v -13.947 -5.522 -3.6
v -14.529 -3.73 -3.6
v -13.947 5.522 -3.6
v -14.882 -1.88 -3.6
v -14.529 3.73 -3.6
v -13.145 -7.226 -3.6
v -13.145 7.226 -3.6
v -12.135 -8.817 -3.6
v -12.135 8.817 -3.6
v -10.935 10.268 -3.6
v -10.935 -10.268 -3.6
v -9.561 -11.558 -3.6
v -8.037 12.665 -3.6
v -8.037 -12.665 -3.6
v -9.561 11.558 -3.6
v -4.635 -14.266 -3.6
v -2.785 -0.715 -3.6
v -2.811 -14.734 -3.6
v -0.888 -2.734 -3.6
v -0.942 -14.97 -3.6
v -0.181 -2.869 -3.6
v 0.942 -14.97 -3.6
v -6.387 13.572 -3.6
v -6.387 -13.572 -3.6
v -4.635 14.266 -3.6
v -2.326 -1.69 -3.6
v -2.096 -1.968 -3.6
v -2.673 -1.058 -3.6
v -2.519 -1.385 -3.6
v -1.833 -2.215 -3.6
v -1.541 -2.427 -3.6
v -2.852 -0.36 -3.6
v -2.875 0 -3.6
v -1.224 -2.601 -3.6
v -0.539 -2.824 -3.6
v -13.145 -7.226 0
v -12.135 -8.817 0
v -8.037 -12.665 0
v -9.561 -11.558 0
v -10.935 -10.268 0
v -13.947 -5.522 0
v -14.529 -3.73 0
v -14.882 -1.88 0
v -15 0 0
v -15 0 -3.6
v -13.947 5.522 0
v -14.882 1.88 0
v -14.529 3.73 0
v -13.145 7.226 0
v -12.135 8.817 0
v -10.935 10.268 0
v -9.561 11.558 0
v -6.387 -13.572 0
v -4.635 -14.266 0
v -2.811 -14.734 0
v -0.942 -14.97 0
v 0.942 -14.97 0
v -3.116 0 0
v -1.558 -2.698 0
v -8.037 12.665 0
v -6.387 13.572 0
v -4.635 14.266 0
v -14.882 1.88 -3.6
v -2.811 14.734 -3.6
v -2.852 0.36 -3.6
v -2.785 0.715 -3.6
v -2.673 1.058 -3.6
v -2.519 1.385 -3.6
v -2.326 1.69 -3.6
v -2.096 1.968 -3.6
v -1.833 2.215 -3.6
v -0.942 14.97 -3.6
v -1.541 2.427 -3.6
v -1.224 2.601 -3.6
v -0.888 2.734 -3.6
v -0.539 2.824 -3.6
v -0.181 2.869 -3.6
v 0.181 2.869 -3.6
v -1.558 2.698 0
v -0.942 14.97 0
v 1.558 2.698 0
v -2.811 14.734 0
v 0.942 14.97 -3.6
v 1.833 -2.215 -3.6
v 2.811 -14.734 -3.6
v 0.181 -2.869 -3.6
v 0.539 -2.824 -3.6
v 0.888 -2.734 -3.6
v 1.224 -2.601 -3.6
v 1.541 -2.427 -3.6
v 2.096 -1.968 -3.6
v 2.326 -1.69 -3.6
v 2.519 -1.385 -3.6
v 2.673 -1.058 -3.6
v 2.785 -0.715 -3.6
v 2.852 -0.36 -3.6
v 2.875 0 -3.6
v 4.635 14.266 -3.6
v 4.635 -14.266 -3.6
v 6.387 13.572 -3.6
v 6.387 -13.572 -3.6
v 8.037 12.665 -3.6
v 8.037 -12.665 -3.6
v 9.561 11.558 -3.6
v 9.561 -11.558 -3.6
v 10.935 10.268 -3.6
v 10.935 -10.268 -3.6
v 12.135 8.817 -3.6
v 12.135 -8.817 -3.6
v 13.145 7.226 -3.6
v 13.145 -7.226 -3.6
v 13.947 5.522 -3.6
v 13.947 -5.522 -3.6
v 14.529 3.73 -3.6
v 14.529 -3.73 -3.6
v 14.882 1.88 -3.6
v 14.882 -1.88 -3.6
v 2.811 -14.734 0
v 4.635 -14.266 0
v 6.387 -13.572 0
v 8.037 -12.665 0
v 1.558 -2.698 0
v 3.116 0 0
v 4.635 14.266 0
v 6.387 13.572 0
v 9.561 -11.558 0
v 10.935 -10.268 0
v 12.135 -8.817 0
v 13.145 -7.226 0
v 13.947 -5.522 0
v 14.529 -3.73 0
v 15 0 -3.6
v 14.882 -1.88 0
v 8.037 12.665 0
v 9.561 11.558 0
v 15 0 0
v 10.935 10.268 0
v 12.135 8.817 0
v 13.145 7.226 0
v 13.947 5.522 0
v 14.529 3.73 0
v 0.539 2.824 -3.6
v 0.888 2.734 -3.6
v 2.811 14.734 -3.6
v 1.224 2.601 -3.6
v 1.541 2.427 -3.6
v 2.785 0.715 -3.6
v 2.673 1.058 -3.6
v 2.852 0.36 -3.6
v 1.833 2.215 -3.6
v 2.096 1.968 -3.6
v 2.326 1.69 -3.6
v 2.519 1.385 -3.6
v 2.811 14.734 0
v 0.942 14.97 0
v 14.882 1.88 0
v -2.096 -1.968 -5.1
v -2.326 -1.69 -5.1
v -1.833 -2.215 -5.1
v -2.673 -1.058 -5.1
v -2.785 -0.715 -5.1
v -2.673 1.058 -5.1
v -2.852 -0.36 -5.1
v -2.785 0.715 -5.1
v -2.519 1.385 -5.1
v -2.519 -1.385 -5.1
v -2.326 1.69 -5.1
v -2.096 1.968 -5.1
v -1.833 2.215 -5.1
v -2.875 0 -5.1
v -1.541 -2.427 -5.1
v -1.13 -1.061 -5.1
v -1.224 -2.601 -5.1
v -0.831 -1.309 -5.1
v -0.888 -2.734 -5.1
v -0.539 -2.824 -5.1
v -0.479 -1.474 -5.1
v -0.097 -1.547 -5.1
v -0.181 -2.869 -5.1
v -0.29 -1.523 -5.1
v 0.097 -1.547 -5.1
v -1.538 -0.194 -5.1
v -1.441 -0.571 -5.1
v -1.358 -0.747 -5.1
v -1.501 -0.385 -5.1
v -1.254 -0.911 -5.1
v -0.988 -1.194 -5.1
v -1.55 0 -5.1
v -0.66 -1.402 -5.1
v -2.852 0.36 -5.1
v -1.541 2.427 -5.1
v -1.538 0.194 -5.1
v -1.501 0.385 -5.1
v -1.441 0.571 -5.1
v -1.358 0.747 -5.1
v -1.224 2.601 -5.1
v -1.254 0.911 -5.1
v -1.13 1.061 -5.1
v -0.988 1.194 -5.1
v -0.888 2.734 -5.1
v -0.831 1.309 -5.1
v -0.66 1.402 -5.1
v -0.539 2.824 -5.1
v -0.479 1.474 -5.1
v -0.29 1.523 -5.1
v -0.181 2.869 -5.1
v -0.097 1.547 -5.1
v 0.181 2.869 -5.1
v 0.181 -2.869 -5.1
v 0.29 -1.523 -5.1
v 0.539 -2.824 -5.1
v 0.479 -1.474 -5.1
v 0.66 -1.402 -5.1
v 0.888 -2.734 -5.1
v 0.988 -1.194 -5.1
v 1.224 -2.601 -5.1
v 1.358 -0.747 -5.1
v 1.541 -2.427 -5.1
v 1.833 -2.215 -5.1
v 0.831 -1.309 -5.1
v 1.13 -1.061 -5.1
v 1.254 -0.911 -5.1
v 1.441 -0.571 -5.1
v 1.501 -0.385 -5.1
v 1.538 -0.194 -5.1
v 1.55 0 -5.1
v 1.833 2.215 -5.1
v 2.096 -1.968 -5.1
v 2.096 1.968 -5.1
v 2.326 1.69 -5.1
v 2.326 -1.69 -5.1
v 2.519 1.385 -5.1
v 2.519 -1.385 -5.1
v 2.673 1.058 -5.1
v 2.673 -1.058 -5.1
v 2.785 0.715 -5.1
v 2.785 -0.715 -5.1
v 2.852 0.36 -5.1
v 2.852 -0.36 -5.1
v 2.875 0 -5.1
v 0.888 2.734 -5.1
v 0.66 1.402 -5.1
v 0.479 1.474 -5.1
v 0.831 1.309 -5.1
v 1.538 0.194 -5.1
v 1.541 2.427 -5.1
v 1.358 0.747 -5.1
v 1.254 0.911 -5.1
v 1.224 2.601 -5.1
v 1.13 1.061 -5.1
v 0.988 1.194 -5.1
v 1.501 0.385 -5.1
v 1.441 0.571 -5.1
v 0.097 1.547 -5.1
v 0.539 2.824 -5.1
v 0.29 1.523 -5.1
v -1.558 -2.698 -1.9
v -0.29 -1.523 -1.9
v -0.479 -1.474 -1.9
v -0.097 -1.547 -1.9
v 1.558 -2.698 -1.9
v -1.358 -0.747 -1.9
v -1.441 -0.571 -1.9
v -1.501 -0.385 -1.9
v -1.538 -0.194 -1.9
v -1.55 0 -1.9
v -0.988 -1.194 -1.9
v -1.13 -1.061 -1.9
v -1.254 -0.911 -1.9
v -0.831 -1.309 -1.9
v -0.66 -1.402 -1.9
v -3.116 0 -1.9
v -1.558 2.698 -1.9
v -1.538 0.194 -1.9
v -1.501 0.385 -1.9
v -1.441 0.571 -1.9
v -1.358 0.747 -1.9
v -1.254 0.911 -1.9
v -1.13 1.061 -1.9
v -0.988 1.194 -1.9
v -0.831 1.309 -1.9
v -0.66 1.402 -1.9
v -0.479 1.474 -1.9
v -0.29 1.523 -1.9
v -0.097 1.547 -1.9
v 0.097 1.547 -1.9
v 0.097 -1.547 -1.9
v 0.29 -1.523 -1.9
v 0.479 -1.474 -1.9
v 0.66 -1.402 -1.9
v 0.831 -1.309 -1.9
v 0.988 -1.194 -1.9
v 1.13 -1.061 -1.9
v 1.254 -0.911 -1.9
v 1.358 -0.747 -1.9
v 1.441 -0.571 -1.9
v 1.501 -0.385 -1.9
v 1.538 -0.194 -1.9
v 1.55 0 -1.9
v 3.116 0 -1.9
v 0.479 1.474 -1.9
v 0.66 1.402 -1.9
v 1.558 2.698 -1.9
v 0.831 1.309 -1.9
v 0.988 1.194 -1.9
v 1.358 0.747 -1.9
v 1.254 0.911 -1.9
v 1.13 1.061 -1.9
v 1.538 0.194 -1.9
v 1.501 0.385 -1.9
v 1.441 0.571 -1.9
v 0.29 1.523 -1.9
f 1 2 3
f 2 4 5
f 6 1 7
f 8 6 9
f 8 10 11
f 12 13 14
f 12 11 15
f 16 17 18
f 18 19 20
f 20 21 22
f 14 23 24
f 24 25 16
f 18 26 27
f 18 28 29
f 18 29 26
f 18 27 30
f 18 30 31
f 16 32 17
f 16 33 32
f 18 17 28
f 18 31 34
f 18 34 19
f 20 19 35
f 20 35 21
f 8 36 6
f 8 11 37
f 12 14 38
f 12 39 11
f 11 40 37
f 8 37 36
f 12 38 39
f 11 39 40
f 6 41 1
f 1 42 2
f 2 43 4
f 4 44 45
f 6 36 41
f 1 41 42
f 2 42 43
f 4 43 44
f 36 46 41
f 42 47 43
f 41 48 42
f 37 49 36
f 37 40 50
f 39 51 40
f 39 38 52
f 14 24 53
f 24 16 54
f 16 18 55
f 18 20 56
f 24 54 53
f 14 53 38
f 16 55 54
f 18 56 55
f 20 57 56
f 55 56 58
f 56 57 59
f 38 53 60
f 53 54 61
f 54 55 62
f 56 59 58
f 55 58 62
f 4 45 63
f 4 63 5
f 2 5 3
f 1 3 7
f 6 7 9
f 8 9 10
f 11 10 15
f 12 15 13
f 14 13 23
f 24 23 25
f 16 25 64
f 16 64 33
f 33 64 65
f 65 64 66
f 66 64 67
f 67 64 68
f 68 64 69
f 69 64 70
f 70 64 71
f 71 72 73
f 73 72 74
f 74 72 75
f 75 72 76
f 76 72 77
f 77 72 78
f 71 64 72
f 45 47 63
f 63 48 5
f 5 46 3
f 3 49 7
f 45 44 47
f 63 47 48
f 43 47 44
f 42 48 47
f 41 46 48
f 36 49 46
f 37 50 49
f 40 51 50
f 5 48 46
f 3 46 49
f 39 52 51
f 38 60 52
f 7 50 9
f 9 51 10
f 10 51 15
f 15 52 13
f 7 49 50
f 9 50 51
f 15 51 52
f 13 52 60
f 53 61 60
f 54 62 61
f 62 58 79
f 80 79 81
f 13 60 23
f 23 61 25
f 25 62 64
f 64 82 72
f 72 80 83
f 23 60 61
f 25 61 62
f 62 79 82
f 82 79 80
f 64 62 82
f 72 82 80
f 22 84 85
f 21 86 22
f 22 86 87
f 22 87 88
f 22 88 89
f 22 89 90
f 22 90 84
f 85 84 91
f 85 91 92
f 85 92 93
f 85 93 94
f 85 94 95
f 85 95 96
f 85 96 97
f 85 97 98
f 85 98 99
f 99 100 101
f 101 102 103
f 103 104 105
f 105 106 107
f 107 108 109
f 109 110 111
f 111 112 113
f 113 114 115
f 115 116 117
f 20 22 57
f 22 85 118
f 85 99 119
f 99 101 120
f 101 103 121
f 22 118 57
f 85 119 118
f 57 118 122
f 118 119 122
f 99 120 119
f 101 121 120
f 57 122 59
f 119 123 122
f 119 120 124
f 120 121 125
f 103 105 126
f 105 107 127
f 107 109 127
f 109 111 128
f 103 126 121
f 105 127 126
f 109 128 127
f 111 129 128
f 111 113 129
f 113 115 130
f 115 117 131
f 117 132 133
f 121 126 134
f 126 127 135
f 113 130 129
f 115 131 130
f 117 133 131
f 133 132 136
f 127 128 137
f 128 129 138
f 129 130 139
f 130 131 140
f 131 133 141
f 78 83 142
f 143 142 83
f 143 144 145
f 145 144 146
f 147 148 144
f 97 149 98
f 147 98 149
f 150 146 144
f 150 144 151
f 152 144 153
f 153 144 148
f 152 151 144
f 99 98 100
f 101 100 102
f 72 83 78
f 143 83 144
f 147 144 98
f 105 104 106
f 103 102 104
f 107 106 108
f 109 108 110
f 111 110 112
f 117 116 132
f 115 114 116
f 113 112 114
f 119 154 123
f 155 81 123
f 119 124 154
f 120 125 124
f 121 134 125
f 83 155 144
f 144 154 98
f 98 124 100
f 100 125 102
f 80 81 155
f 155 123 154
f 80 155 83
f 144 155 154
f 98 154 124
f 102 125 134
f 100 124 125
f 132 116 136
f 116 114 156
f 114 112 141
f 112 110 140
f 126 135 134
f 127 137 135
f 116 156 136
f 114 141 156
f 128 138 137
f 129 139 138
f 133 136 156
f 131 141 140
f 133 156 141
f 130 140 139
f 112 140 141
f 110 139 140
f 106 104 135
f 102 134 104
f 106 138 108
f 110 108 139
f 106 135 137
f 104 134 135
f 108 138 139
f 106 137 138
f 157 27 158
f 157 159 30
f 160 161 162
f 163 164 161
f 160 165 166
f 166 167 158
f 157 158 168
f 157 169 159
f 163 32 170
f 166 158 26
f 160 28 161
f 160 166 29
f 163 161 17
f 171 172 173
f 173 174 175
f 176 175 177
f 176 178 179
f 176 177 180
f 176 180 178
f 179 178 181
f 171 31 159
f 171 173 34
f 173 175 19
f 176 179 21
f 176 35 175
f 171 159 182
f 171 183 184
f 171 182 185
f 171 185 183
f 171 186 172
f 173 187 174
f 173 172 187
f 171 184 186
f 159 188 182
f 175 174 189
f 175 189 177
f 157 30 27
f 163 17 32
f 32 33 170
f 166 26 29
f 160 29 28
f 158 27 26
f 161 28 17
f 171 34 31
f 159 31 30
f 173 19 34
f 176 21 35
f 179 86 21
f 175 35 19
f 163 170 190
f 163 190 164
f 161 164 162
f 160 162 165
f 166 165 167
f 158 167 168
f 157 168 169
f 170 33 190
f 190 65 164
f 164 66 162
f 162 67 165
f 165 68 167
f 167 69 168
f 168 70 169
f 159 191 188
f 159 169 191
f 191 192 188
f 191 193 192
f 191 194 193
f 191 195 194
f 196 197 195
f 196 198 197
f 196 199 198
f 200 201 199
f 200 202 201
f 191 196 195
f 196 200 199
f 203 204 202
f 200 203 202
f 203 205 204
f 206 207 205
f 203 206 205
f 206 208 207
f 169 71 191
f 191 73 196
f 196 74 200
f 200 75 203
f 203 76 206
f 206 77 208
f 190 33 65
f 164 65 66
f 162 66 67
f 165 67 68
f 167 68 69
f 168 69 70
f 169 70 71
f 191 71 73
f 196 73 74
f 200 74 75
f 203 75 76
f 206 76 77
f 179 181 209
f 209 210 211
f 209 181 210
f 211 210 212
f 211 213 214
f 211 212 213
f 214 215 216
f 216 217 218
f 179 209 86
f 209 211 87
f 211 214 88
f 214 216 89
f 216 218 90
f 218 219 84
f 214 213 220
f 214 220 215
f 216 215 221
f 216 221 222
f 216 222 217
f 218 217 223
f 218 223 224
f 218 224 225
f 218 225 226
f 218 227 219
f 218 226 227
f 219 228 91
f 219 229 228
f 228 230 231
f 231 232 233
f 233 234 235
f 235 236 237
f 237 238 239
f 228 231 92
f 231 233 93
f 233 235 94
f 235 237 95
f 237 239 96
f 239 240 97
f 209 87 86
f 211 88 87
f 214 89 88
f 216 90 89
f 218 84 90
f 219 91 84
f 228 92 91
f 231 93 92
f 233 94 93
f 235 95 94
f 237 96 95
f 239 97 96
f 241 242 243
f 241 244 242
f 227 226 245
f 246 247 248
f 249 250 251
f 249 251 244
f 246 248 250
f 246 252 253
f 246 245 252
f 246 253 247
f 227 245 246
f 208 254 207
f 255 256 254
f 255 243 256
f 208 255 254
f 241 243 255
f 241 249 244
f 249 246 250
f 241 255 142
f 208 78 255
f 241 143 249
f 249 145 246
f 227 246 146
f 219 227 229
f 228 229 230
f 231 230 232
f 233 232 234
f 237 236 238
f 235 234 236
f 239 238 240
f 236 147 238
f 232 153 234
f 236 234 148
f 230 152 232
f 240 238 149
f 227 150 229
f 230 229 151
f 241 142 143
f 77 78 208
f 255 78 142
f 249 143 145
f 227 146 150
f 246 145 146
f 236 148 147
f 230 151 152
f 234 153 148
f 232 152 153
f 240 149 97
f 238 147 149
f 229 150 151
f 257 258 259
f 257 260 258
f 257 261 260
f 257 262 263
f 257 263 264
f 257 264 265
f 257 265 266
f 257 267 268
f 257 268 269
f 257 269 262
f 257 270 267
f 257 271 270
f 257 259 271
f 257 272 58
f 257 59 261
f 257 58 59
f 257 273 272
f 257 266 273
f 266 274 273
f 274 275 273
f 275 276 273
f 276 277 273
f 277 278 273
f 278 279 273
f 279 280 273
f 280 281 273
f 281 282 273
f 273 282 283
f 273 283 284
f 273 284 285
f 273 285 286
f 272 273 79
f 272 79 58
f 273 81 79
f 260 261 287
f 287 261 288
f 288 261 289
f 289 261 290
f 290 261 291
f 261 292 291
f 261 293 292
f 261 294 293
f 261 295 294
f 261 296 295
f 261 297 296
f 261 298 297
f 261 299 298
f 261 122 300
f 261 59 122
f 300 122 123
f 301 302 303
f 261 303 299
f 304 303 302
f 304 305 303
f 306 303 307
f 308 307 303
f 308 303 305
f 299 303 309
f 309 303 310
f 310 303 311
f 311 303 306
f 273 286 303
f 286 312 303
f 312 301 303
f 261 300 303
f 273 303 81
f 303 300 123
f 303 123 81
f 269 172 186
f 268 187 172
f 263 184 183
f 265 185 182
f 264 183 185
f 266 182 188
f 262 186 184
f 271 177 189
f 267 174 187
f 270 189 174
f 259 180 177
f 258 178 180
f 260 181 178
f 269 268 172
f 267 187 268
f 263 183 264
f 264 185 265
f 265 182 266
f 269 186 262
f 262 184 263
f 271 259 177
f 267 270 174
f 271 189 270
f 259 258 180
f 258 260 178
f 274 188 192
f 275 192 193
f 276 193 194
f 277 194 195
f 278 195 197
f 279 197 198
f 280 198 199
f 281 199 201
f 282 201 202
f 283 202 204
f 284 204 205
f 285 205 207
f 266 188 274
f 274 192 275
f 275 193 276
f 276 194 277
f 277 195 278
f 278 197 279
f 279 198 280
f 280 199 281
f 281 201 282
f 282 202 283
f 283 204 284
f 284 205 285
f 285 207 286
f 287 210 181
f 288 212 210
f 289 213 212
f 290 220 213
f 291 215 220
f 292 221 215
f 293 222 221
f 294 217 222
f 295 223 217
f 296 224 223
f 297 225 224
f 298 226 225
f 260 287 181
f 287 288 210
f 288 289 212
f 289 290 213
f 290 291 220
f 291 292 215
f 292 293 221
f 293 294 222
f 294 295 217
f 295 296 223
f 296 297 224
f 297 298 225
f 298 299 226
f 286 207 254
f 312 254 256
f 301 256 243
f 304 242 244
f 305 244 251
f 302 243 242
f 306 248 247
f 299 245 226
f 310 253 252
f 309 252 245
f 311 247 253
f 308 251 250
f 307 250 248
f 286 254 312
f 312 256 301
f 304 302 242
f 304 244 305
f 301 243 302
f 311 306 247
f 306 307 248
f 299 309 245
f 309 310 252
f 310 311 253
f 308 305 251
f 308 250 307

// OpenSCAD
$fn = 50;

difference() {
	union() {
		translate(v = [0, 0, -3.6]) {
			cylinder(h = 3.6, r = 15.0);
		}
		#translate(v = [0, 0, -5.1]) {
			cylinder(h = 5.1, r = 2.875);
		}
	}
	union() {
		translate(v = [0, 0, 0]) {
			rotate(a = [0, 0, 0]) {
				difference() {
					union() {
						translate(v = [0, 0, -1.9]) {
							linear_extrude(height = 1.9) {
								polygon(points = [[3.1158, 0.0], [1.5579000000000005, 2.698361953111554], [-1.5578999999999994, 2.6983619531115544], [-3.1158, 3.815754496783323e-16], [-1.5579000000000014, -2.6983619531115535], [1.557899999999998, -2.6983619531115552]]);
							}
						}
					}
					union();
				}
			}
		}
		#translate(v = [0, 0, -100.0]) {
			cylinder(h = 200, r = 1.55);
		}
	}
}
